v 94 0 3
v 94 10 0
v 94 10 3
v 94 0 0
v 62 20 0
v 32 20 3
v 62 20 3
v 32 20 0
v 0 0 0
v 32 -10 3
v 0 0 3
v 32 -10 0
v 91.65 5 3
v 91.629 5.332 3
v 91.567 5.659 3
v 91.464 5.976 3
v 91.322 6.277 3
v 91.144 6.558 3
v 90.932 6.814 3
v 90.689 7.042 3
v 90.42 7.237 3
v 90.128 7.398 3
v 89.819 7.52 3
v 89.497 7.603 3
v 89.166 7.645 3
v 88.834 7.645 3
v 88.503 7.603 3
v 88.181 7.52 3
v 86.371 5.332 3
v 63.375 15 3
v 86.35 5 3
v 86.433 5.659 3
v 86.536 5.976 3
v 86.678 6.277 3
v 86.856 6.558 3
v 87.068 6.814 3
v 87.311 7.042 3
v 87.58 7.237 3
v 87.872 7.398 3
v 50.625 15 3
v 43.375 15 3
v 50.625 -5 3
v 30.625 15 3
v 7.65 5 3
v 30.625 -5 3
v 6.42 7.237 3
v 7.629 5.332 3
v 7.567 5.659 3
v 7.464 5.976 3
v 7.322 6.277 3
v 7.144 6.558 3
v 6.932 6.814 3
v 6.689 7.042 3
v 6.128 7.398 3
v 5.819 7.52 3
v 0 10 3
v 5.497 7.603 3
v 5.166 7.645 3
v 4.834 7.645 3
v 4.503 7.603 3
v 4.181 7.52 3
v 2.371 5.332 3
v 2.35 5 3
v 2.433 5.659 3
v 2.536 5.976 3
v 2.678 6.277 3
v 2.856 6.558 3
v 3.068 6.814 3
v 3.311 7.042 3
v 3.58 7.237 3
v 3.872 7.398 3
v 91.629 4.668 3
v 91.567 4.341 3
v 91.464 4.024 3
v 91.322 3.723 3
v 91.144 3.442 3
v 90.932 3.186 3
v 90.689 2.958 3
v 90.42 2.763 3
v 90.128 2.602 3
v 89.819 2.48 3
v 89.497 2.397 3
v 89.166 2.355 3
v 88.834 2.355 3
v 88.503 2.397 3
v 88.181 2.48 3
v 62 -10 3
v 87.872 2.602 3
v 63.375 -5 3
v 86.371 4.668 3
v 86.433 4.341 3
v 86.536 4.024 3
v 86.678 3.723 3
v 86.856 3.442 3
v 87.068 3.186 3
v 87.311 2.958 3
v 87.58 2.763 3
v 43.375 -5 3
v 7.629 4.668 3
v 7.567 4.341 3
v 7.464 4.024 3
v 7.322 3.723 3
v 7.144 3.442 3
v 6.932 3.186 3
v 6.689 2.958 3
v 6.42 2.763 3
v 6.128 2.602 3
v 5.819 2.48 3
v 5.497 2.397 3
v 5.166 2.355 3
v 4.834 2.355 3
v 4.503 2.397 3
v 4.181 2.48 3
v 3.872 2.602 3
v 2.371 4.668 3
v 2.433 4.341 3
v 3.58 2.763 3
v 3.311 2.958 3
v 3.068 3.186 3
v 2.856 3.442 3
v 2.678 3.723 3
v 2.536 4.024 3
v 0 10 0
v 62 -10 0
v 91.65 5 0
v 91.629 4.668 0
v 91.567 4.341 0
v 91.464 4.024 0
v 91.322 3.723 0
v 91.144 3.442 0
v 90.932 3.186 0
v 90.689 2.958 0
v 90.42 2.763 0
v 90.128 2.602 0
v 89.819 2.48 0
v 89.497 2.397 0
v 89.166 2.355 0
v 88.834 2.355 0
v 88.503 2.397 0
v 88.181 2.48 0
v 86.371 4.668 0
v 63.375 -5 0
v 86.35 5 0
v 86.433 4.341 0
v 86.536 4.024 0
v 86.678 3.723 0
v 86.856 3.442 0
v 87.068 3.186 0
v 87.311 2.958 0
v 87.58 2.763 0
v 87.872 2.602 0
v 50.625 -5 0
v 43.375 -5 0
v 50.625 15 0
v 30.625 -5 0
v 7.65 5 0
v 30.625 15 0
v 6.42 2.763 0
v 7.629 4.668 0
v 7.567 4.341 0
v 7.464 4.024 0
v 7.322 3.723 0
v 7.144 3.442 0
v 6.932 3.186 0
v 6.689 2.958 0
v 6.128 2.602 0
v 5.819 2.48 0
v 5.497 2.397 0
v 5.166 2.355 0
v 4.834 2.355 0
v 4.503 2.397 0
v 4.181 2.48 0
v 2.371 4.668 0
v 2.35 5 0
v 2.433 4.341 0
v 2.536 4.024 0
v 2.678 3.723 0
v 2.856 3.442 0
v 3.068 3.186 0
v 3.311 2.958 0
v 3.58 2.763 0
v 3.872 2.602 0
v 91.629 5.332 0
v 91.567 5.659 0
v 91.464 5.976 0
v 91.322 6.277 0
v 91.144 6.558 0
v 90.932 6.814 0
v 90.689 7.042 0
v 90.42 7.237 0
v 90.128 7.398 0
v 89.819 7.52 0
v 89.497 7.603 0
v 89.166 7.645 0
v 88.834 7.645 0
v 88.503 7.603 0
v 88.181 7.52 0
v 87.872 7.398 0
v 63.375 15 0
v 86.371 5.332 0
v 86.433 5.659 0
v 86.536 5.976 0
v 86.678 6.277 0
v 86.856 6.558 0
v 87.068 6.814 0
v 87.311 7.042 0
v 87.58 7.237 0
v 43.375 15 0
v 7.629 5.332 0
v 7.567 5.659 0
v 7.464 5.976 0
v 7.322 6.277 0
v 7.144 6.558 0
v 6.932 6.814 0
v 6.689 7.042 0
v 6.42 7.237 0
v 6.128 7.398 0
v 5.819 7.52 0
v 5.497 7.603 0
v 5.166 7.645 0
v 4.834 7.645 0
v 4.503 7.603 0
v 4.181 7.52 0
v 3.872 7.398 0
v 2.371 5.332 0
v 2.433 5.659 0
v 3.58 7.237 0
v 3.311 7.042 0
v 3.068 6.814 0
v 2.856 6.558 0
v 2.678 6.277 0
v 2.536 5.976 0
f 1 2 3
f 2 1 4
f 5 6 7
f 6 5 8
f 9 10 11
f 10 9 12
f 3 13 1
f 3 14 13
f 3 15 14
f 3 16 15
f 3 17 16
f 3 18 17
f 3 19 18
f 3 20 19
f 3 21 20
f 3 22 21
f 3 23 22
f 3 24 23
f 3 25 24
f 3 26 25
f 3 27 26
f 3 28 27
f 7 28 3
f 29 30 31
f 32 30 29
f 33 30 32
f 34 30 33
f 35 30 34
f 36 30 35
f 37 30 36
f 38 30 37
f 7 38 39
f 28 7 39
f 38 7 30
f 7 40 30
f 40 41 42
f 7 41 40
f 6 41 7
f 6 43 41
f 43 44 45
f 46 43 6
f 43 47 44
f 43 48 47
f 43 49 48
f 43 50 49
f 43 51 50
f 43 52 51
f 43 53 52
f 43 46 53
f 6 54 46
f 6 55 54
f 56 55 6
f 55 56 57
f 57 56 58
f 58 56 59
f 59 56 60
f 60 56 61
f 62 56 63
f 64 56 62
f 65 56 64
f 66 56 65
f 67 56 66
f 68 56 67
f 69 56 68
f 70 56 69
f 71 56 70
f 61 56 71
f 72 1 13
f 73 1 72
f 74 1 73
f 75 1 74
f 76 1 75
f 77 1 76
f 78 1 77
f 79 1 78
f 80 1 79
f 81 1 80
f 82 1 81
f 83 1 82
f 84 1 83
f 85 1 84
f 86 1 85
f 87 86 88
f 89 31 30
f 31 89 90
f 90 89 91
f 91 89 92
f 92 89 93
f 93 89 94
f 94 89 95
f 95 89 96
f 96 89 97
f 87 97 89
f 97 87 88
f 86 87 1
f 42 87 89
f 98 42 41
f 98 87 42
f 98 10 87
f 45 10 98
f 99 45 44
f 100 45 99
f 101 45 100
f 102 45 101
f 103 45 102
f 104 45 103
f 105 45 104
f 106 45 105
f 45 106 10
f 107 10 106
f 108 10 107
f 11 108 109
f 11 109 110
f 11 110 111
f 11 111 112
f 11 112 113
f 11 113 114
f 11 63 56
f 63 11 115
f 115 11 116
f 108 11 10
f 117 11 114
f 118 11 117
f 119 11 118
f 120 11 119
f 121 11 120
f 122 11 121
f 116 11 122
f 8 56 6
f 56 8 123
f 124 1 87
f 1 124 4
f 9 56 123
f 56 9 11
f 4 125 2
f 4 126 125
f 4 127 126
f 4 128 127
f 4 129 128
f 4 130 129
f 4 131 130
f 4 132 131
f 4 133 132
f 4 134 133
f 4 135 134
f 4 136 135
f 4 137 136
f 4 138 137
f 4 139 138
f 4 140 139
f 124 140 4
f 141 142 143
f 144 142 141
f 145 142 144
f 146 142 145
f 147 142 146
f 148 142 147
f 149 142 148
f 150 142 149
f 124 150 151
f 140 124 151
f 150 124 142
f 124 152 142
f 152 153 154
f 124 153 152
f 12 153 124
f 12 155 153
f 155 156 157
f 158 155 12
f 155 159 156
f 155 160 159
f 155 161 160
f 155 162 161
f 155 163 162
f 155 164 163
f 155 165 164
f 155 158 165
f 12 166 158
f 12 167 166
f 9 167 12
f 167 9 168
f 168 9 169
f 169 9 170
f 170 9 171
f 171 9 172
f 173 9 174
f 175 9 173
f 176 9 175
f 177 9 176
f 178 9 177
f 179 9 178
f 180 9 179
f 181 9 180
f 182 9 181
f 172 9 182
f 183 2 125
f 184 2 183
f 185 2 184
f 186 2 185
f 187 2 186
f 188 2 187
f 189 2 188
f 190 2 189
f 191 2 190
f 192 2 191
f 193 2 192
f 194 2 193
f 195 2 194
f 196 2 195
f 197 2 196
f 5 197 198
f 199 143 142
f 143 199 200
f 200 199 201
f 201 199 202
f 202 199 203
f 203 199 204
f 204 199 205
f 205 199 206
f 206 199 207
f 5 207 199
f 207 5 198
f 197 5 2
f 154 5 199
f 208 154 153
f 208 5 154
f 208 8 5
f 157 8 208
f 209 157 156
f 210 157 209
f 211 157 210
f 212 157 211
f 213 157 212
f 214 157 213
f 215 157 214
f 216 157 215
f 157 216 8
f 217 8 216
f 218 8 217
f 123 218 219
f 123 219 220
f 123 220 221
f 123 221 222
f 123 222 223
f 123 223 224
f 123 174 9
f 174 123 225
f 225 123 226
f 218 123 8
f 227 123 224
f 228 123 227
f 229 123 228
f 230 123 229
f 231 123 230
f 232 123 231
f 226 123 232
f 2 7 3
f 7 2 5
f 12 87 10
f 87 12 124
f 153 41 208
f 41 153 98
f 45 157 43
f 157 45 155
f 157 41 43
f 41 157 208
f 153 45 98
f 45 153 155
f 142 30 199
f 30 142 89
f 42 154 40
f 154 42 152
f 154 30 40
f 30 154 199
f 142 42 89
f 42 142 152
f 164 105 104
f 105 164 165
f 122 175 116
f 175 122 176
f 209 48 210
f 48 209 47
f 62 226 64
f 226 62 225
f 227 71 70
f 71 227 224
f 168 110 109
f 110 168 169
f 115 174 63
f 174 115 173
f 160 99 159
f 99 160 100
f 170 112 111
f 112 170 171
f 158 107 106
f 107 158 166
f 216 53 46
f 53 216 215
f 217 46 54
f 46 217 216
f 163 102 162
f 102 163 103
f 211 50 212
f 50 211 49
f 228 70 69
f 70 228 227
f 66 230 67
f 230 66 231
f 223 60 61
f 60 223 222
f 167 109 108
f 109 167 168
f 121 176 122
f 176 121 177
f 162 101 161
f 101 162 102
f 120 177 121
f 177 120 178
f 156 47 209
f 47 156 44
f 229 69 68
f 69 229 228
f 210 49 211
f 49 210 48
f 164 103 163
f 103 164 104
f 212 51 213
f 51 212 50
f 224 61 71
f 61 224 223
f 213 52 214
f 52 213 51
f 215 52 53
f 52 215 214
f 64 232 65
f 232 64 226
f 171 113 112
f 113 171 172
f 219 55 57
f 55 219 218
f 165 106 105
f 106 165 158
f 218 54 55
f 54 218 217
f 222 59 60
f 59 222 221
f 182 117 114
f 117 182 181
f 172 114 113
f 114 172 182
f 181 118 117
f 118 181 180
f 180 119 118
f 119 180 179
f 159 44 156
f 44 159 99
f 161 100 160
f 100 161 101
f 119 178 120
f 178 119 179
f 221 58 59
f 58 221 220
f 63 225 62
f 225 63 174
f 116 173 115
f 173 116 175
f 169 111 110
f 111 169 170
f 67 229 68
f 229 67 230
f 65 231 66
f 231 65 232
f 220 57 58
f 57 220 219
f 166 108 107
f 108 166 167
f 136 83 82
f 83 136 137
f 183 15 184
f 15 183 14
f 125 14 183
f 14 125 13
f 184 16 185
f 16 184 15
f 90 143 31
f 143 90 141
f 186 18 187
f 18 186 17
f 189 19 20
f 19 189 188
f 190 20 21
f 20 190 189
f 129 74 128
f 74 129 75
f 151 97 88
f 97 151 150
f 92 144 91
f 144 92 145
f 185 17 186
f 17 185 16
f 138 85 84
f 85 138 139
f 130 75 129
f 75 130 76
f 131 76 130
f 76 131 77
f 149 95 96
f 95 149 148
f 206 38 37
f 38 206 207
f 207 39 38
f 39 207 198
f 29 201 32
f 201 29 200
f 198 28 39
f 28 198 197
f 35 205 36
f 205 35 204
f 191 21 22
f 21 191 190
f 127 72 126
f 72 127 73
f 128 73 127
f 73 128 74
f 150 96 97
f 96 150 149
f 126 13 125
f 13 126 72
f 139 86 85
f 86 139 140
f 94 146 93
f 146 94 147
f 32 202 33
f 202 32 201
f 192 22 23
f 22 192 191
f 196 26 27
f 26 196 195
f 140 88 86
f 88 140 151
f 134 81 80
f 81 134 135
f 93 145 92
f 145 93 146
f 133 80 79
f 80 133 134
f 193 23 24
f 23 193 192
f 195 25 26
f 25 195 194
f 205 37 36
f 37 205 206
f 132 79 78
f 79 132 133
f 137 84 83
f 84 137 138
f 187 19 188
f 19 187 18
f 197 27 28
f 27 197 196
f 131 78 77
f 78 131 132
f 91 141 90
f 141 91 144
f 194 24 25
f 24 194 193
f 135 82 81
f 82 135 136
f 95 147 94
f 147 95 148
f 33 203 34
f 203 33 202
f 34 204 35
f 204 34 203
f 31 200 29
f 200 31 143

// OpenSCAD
$fn=50;

difference()
{
    hull()
    {
        cube([94, 10, 3]);
        translate([94/2-15, -10, 0]) cube([30, 30, 3]);
    }
    translate([94/2-12.75/2-10, -5, -1]) cube([12.75, 20, 5]);
    translate([94/2-12.75/2+10, -5, -1]) cube([12.75, 20, 5]);
    translate([5, 5, -1]) cylinder(d=5.3, h=10);
        translate([94-5, 5, -1]) cylinder(d=5.3, h=10);
}
